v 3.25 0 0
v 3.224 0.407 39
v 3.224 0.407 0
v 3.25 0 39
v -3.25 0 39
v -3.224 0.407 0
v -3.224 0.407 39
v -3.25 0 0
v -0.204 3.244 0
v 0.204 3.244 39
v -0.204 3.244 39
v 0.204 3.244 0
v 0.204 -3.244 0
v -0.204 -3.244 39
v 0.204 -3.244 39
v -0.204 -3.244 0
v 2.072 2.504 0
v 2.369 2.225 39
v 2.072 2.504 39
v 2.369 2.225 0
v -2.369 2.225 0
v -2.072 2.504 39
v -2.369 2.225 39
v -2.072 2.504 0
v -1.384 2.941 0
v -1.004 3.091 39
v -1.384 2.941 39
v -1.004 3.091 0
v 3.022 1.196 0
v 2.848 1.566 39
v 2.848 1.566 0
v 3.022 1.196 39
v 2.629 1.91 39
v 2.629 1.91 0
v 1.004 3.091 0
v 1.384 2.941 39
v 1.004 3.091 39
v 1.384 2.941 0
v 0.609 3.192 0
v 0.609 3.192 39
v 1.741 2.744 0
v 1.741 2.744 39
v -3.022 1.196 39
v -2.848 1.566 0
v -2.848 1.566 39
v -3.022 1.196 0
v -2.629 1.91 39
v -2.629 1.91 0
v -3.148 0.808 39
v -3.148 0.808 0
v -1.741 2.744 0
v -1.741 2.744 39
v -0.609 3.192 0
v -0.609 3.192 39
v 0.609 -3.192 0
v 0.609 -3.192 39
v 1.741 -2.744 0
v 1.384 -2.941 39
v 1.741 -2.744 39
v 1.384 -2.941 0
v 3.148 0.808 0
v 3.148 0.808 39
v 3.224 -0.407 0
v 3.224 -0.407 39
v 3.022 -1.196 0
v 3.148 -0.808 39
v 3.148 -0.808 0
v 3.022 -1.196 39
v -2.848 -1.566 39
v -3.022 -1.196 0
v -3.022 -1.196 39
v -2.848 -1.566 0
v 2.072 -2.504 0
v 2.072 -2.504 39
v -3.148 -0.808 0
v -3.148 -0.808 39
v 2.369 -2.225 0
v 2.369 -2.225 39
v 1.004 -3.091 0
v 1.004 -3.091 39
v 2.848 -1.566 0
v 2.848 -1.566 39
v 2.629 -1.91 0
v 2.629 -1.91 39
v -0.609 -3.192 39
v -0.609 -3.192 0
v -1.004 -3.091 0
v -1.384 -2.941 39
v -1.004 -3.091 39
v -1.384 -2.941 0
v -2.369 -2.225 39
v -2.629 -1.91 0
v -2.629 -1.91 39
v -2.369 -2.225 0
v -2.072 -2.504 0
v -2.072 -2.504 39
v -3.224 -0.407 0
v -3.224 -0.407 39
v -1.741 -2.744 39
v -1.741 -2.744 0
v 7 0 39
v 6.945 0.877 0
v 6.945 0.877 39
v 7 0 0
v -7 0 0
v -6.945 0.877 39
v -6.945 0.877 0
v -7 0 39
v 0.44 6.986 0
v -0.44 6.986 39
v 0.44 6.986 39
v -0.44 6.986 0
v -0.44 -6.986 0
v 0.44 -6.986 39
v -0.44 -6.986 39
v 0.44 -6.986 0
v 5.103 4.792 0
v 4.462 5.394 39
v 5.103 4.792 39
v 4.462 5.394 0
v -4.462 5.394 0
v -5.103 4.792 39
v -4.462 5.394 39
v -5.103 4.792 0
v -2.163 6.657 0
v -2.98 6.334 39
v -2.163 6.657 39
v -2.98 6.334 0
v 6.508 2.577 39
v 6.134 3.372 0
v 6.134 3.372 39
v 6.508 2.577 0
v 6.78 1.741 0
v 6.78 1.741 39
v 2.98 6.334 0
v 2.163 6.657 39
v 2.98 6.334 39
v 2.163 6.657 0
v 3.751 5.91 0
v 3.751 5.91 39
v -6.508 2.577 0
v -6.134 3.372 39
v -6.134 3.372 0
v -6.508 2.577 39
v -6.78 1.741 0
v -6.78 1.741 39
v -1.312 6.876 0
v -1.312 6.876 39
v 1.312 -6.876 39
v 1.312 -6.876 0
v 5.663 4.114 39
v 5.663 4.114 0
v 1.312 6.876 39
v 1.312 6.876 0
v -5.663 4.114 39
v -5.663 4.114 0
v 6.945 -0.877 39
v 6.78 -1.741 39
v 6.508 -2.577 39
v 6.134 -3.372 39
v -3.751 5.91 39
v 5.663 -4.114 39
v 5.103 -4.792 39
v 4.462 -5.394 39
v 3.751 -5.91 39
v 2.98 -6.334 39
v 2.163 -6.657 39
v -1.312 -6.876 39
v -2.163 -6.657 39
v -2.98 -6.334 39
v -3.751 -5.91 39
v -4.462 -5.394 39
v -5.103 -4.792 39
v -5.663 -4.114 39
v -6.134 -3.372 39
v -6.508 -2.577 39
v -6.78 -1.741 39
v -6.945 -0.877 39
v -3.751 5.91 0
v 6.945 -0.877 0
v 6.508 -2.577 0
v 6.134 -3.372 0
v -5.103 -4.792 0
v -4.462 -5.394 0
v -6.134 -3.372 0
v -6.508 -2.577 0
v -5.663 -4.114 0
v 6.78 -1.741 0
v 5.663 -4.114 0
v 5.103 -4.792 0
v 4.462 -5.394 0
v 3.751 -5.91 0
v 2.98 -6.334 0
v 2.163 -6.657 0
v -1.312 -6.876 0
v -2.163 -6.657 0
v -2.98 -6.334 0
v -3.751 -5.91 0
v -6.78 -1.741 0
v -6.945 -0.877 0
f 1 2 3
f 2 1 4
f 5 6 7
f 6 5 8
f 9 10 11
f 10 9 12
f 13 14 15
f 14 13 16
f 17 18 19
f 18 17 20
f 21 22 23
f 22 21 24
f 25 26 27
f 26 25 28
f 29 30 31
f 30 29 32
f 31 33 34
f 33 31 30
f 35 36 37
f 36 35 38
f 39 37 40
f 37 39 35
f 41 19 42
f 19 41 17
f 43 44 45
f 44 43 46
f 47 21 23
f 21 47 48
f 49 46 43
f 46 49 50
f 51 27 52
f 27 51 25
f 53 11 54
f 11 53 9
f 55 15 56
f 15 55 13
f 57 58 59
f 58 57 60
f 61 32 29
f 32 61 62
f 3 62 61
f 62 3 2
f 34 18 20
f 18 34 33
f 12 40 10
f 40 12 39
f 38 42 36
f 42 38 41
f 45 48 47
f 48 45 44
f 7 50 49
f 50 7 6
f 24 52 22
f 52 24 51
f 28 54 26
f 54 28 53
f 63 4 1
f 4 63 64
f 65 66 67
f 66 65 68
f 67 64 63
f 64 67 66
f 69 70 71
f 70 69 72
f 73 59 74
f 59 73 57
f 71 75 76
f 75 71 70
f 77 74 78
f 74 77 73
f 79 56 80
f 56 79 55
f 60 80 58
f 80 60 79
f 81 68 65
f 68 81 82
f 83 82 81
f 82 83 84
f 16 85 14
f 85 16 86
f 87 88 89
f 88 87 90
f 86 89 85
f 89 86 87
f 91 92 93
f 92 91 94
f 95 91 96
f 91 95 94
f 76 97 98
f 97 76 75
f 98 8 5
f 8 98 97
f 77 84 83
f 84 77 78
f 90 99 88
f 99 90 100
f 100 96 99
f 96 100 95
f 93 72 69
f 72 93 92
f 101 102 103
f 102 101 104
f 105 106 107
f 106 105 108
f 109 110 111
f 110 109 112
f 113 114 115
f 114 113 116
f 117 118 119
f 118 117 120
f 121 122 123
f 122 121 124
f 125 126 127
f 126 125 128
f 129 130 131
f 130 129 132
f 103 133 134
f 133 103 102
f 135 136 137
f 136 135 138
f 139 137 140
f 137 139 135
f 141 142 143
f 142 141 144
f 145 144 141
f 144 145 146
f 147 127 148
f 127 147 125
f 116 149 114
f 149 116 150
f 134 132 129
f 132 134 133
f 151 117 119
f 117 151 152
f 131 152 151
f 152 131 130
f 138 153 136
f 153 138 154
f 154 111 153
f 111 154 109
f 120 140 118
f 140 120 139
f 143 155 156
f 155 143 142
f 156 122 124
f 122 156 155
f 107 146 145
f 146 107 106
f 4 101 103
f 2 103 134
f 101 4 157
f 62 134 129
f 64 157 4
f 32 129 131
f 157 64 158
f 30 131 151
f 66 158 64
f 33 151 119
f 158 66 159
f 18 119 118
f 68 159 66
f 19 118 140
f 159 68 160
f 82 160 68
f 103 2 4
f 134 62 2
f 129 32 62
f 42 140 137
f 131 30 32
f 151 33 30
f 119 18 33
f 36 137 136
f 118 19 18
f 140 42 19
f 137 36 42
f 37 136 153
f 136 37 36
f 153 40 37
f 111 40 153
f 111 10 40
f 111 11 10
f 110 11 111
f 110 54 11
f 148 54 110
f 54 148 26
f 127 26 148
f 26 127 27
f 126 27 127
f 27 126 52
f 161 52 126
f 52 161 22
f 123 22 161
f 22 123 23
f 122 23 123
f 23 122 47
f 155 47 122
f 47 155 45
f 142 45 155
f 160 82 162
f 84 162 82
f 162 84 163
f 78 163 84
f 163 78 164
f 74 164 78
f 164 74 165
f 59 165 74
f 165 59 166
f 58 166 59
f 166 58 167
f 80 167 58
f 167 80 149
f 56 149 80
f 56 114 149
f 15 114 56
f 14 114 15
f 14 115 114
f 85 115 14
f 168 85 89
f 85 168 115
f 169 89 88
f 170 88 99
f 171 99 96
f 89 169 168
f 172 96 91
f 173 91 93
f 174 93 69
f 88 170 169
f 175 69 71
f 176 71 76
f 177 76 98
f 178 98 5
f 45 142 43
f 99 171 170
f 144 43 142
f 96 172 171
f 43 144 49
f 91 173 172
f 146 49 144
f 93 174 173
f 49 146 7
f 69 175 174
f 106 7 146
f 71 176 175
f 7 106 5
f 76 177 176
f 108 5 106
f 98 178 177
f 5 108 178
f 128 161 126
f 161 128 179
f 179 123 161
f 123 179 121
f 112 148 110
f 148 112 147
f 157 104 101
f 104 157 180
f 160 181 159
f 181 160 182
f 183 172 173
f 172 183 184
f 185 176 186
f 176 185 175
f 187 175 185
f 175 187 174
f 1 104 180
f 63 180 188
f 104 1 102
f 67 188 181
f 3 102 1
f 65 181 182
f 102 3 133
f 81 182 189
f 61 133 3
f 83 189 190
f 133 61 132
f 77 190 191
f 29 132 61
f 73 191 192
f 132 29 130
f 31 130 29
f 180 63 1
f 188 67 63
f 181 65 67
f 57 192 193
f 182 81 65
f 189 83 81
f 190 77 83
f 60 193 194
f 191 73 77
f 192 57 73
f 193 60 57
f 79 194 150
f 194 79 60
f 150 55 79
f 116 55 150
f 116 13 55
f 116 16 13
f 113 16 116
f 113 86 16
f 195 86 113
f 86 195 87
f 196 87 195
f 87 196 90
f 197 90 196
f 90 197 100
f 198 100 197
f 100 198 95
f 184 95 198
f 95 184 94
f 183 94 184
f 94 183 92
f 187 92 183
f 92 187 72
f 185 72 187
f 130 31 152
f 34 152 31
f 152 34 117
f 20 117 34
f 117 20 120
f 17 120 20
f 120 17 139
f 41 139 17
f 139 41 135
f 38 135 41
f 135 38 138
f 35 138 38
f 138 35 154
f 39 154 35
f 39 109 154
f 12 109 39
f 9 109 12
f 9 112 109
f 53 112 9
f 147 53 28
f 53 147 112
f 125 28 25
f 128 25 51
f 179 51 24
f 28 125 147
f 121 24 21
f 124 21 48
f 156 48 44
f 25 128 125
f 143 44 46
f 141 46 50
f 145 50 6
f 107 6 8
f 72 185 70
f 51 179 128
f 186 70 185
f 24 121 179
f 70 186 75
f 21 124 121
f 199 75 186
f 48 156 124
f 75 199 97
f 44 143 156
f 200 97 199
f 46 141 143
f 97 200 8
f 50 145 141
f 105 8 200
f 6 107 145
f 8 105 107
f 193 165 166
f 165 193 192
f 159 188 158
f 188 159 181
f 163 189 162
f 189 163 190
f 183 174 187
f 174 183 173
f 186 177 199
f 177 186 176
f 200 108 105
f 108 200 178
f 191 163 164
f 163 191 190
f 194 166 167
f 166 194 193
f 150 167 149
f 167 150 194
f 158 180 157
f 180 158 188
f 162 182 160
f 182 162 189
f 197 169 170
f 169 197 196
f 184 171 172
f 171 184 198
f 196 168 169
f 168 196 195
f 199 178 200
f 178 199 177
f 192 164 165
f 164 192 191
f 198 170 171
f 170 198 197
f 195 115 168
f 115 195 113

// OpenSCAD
$fn = 50;


difference() {
	union() {
		cylinder(h = 39, r = 7.0000000000);
	}
	union() {
		translate(v = [0.0000000000, 0.0000000000, -100.0000000000]) {
			cylinder(h = 200, r = 3.2500000000);
		}
		translate(v = [0.0000000000, 0.0000000000, -100.0000000000]) {
			cylinder(h = 200, r = 3.2500000000);
		}
		translate(v = [0.0000000000, 0.0000000000, -100.0000000000]) {
			cylinder(h = 200, r = 3.2500000000);
		}
		translate(v = [0.0000000000, 0.0000000000, -100.0000000000]) {
			cylinder(h = 200, r = 3.2500000000);
		}
	}
}
